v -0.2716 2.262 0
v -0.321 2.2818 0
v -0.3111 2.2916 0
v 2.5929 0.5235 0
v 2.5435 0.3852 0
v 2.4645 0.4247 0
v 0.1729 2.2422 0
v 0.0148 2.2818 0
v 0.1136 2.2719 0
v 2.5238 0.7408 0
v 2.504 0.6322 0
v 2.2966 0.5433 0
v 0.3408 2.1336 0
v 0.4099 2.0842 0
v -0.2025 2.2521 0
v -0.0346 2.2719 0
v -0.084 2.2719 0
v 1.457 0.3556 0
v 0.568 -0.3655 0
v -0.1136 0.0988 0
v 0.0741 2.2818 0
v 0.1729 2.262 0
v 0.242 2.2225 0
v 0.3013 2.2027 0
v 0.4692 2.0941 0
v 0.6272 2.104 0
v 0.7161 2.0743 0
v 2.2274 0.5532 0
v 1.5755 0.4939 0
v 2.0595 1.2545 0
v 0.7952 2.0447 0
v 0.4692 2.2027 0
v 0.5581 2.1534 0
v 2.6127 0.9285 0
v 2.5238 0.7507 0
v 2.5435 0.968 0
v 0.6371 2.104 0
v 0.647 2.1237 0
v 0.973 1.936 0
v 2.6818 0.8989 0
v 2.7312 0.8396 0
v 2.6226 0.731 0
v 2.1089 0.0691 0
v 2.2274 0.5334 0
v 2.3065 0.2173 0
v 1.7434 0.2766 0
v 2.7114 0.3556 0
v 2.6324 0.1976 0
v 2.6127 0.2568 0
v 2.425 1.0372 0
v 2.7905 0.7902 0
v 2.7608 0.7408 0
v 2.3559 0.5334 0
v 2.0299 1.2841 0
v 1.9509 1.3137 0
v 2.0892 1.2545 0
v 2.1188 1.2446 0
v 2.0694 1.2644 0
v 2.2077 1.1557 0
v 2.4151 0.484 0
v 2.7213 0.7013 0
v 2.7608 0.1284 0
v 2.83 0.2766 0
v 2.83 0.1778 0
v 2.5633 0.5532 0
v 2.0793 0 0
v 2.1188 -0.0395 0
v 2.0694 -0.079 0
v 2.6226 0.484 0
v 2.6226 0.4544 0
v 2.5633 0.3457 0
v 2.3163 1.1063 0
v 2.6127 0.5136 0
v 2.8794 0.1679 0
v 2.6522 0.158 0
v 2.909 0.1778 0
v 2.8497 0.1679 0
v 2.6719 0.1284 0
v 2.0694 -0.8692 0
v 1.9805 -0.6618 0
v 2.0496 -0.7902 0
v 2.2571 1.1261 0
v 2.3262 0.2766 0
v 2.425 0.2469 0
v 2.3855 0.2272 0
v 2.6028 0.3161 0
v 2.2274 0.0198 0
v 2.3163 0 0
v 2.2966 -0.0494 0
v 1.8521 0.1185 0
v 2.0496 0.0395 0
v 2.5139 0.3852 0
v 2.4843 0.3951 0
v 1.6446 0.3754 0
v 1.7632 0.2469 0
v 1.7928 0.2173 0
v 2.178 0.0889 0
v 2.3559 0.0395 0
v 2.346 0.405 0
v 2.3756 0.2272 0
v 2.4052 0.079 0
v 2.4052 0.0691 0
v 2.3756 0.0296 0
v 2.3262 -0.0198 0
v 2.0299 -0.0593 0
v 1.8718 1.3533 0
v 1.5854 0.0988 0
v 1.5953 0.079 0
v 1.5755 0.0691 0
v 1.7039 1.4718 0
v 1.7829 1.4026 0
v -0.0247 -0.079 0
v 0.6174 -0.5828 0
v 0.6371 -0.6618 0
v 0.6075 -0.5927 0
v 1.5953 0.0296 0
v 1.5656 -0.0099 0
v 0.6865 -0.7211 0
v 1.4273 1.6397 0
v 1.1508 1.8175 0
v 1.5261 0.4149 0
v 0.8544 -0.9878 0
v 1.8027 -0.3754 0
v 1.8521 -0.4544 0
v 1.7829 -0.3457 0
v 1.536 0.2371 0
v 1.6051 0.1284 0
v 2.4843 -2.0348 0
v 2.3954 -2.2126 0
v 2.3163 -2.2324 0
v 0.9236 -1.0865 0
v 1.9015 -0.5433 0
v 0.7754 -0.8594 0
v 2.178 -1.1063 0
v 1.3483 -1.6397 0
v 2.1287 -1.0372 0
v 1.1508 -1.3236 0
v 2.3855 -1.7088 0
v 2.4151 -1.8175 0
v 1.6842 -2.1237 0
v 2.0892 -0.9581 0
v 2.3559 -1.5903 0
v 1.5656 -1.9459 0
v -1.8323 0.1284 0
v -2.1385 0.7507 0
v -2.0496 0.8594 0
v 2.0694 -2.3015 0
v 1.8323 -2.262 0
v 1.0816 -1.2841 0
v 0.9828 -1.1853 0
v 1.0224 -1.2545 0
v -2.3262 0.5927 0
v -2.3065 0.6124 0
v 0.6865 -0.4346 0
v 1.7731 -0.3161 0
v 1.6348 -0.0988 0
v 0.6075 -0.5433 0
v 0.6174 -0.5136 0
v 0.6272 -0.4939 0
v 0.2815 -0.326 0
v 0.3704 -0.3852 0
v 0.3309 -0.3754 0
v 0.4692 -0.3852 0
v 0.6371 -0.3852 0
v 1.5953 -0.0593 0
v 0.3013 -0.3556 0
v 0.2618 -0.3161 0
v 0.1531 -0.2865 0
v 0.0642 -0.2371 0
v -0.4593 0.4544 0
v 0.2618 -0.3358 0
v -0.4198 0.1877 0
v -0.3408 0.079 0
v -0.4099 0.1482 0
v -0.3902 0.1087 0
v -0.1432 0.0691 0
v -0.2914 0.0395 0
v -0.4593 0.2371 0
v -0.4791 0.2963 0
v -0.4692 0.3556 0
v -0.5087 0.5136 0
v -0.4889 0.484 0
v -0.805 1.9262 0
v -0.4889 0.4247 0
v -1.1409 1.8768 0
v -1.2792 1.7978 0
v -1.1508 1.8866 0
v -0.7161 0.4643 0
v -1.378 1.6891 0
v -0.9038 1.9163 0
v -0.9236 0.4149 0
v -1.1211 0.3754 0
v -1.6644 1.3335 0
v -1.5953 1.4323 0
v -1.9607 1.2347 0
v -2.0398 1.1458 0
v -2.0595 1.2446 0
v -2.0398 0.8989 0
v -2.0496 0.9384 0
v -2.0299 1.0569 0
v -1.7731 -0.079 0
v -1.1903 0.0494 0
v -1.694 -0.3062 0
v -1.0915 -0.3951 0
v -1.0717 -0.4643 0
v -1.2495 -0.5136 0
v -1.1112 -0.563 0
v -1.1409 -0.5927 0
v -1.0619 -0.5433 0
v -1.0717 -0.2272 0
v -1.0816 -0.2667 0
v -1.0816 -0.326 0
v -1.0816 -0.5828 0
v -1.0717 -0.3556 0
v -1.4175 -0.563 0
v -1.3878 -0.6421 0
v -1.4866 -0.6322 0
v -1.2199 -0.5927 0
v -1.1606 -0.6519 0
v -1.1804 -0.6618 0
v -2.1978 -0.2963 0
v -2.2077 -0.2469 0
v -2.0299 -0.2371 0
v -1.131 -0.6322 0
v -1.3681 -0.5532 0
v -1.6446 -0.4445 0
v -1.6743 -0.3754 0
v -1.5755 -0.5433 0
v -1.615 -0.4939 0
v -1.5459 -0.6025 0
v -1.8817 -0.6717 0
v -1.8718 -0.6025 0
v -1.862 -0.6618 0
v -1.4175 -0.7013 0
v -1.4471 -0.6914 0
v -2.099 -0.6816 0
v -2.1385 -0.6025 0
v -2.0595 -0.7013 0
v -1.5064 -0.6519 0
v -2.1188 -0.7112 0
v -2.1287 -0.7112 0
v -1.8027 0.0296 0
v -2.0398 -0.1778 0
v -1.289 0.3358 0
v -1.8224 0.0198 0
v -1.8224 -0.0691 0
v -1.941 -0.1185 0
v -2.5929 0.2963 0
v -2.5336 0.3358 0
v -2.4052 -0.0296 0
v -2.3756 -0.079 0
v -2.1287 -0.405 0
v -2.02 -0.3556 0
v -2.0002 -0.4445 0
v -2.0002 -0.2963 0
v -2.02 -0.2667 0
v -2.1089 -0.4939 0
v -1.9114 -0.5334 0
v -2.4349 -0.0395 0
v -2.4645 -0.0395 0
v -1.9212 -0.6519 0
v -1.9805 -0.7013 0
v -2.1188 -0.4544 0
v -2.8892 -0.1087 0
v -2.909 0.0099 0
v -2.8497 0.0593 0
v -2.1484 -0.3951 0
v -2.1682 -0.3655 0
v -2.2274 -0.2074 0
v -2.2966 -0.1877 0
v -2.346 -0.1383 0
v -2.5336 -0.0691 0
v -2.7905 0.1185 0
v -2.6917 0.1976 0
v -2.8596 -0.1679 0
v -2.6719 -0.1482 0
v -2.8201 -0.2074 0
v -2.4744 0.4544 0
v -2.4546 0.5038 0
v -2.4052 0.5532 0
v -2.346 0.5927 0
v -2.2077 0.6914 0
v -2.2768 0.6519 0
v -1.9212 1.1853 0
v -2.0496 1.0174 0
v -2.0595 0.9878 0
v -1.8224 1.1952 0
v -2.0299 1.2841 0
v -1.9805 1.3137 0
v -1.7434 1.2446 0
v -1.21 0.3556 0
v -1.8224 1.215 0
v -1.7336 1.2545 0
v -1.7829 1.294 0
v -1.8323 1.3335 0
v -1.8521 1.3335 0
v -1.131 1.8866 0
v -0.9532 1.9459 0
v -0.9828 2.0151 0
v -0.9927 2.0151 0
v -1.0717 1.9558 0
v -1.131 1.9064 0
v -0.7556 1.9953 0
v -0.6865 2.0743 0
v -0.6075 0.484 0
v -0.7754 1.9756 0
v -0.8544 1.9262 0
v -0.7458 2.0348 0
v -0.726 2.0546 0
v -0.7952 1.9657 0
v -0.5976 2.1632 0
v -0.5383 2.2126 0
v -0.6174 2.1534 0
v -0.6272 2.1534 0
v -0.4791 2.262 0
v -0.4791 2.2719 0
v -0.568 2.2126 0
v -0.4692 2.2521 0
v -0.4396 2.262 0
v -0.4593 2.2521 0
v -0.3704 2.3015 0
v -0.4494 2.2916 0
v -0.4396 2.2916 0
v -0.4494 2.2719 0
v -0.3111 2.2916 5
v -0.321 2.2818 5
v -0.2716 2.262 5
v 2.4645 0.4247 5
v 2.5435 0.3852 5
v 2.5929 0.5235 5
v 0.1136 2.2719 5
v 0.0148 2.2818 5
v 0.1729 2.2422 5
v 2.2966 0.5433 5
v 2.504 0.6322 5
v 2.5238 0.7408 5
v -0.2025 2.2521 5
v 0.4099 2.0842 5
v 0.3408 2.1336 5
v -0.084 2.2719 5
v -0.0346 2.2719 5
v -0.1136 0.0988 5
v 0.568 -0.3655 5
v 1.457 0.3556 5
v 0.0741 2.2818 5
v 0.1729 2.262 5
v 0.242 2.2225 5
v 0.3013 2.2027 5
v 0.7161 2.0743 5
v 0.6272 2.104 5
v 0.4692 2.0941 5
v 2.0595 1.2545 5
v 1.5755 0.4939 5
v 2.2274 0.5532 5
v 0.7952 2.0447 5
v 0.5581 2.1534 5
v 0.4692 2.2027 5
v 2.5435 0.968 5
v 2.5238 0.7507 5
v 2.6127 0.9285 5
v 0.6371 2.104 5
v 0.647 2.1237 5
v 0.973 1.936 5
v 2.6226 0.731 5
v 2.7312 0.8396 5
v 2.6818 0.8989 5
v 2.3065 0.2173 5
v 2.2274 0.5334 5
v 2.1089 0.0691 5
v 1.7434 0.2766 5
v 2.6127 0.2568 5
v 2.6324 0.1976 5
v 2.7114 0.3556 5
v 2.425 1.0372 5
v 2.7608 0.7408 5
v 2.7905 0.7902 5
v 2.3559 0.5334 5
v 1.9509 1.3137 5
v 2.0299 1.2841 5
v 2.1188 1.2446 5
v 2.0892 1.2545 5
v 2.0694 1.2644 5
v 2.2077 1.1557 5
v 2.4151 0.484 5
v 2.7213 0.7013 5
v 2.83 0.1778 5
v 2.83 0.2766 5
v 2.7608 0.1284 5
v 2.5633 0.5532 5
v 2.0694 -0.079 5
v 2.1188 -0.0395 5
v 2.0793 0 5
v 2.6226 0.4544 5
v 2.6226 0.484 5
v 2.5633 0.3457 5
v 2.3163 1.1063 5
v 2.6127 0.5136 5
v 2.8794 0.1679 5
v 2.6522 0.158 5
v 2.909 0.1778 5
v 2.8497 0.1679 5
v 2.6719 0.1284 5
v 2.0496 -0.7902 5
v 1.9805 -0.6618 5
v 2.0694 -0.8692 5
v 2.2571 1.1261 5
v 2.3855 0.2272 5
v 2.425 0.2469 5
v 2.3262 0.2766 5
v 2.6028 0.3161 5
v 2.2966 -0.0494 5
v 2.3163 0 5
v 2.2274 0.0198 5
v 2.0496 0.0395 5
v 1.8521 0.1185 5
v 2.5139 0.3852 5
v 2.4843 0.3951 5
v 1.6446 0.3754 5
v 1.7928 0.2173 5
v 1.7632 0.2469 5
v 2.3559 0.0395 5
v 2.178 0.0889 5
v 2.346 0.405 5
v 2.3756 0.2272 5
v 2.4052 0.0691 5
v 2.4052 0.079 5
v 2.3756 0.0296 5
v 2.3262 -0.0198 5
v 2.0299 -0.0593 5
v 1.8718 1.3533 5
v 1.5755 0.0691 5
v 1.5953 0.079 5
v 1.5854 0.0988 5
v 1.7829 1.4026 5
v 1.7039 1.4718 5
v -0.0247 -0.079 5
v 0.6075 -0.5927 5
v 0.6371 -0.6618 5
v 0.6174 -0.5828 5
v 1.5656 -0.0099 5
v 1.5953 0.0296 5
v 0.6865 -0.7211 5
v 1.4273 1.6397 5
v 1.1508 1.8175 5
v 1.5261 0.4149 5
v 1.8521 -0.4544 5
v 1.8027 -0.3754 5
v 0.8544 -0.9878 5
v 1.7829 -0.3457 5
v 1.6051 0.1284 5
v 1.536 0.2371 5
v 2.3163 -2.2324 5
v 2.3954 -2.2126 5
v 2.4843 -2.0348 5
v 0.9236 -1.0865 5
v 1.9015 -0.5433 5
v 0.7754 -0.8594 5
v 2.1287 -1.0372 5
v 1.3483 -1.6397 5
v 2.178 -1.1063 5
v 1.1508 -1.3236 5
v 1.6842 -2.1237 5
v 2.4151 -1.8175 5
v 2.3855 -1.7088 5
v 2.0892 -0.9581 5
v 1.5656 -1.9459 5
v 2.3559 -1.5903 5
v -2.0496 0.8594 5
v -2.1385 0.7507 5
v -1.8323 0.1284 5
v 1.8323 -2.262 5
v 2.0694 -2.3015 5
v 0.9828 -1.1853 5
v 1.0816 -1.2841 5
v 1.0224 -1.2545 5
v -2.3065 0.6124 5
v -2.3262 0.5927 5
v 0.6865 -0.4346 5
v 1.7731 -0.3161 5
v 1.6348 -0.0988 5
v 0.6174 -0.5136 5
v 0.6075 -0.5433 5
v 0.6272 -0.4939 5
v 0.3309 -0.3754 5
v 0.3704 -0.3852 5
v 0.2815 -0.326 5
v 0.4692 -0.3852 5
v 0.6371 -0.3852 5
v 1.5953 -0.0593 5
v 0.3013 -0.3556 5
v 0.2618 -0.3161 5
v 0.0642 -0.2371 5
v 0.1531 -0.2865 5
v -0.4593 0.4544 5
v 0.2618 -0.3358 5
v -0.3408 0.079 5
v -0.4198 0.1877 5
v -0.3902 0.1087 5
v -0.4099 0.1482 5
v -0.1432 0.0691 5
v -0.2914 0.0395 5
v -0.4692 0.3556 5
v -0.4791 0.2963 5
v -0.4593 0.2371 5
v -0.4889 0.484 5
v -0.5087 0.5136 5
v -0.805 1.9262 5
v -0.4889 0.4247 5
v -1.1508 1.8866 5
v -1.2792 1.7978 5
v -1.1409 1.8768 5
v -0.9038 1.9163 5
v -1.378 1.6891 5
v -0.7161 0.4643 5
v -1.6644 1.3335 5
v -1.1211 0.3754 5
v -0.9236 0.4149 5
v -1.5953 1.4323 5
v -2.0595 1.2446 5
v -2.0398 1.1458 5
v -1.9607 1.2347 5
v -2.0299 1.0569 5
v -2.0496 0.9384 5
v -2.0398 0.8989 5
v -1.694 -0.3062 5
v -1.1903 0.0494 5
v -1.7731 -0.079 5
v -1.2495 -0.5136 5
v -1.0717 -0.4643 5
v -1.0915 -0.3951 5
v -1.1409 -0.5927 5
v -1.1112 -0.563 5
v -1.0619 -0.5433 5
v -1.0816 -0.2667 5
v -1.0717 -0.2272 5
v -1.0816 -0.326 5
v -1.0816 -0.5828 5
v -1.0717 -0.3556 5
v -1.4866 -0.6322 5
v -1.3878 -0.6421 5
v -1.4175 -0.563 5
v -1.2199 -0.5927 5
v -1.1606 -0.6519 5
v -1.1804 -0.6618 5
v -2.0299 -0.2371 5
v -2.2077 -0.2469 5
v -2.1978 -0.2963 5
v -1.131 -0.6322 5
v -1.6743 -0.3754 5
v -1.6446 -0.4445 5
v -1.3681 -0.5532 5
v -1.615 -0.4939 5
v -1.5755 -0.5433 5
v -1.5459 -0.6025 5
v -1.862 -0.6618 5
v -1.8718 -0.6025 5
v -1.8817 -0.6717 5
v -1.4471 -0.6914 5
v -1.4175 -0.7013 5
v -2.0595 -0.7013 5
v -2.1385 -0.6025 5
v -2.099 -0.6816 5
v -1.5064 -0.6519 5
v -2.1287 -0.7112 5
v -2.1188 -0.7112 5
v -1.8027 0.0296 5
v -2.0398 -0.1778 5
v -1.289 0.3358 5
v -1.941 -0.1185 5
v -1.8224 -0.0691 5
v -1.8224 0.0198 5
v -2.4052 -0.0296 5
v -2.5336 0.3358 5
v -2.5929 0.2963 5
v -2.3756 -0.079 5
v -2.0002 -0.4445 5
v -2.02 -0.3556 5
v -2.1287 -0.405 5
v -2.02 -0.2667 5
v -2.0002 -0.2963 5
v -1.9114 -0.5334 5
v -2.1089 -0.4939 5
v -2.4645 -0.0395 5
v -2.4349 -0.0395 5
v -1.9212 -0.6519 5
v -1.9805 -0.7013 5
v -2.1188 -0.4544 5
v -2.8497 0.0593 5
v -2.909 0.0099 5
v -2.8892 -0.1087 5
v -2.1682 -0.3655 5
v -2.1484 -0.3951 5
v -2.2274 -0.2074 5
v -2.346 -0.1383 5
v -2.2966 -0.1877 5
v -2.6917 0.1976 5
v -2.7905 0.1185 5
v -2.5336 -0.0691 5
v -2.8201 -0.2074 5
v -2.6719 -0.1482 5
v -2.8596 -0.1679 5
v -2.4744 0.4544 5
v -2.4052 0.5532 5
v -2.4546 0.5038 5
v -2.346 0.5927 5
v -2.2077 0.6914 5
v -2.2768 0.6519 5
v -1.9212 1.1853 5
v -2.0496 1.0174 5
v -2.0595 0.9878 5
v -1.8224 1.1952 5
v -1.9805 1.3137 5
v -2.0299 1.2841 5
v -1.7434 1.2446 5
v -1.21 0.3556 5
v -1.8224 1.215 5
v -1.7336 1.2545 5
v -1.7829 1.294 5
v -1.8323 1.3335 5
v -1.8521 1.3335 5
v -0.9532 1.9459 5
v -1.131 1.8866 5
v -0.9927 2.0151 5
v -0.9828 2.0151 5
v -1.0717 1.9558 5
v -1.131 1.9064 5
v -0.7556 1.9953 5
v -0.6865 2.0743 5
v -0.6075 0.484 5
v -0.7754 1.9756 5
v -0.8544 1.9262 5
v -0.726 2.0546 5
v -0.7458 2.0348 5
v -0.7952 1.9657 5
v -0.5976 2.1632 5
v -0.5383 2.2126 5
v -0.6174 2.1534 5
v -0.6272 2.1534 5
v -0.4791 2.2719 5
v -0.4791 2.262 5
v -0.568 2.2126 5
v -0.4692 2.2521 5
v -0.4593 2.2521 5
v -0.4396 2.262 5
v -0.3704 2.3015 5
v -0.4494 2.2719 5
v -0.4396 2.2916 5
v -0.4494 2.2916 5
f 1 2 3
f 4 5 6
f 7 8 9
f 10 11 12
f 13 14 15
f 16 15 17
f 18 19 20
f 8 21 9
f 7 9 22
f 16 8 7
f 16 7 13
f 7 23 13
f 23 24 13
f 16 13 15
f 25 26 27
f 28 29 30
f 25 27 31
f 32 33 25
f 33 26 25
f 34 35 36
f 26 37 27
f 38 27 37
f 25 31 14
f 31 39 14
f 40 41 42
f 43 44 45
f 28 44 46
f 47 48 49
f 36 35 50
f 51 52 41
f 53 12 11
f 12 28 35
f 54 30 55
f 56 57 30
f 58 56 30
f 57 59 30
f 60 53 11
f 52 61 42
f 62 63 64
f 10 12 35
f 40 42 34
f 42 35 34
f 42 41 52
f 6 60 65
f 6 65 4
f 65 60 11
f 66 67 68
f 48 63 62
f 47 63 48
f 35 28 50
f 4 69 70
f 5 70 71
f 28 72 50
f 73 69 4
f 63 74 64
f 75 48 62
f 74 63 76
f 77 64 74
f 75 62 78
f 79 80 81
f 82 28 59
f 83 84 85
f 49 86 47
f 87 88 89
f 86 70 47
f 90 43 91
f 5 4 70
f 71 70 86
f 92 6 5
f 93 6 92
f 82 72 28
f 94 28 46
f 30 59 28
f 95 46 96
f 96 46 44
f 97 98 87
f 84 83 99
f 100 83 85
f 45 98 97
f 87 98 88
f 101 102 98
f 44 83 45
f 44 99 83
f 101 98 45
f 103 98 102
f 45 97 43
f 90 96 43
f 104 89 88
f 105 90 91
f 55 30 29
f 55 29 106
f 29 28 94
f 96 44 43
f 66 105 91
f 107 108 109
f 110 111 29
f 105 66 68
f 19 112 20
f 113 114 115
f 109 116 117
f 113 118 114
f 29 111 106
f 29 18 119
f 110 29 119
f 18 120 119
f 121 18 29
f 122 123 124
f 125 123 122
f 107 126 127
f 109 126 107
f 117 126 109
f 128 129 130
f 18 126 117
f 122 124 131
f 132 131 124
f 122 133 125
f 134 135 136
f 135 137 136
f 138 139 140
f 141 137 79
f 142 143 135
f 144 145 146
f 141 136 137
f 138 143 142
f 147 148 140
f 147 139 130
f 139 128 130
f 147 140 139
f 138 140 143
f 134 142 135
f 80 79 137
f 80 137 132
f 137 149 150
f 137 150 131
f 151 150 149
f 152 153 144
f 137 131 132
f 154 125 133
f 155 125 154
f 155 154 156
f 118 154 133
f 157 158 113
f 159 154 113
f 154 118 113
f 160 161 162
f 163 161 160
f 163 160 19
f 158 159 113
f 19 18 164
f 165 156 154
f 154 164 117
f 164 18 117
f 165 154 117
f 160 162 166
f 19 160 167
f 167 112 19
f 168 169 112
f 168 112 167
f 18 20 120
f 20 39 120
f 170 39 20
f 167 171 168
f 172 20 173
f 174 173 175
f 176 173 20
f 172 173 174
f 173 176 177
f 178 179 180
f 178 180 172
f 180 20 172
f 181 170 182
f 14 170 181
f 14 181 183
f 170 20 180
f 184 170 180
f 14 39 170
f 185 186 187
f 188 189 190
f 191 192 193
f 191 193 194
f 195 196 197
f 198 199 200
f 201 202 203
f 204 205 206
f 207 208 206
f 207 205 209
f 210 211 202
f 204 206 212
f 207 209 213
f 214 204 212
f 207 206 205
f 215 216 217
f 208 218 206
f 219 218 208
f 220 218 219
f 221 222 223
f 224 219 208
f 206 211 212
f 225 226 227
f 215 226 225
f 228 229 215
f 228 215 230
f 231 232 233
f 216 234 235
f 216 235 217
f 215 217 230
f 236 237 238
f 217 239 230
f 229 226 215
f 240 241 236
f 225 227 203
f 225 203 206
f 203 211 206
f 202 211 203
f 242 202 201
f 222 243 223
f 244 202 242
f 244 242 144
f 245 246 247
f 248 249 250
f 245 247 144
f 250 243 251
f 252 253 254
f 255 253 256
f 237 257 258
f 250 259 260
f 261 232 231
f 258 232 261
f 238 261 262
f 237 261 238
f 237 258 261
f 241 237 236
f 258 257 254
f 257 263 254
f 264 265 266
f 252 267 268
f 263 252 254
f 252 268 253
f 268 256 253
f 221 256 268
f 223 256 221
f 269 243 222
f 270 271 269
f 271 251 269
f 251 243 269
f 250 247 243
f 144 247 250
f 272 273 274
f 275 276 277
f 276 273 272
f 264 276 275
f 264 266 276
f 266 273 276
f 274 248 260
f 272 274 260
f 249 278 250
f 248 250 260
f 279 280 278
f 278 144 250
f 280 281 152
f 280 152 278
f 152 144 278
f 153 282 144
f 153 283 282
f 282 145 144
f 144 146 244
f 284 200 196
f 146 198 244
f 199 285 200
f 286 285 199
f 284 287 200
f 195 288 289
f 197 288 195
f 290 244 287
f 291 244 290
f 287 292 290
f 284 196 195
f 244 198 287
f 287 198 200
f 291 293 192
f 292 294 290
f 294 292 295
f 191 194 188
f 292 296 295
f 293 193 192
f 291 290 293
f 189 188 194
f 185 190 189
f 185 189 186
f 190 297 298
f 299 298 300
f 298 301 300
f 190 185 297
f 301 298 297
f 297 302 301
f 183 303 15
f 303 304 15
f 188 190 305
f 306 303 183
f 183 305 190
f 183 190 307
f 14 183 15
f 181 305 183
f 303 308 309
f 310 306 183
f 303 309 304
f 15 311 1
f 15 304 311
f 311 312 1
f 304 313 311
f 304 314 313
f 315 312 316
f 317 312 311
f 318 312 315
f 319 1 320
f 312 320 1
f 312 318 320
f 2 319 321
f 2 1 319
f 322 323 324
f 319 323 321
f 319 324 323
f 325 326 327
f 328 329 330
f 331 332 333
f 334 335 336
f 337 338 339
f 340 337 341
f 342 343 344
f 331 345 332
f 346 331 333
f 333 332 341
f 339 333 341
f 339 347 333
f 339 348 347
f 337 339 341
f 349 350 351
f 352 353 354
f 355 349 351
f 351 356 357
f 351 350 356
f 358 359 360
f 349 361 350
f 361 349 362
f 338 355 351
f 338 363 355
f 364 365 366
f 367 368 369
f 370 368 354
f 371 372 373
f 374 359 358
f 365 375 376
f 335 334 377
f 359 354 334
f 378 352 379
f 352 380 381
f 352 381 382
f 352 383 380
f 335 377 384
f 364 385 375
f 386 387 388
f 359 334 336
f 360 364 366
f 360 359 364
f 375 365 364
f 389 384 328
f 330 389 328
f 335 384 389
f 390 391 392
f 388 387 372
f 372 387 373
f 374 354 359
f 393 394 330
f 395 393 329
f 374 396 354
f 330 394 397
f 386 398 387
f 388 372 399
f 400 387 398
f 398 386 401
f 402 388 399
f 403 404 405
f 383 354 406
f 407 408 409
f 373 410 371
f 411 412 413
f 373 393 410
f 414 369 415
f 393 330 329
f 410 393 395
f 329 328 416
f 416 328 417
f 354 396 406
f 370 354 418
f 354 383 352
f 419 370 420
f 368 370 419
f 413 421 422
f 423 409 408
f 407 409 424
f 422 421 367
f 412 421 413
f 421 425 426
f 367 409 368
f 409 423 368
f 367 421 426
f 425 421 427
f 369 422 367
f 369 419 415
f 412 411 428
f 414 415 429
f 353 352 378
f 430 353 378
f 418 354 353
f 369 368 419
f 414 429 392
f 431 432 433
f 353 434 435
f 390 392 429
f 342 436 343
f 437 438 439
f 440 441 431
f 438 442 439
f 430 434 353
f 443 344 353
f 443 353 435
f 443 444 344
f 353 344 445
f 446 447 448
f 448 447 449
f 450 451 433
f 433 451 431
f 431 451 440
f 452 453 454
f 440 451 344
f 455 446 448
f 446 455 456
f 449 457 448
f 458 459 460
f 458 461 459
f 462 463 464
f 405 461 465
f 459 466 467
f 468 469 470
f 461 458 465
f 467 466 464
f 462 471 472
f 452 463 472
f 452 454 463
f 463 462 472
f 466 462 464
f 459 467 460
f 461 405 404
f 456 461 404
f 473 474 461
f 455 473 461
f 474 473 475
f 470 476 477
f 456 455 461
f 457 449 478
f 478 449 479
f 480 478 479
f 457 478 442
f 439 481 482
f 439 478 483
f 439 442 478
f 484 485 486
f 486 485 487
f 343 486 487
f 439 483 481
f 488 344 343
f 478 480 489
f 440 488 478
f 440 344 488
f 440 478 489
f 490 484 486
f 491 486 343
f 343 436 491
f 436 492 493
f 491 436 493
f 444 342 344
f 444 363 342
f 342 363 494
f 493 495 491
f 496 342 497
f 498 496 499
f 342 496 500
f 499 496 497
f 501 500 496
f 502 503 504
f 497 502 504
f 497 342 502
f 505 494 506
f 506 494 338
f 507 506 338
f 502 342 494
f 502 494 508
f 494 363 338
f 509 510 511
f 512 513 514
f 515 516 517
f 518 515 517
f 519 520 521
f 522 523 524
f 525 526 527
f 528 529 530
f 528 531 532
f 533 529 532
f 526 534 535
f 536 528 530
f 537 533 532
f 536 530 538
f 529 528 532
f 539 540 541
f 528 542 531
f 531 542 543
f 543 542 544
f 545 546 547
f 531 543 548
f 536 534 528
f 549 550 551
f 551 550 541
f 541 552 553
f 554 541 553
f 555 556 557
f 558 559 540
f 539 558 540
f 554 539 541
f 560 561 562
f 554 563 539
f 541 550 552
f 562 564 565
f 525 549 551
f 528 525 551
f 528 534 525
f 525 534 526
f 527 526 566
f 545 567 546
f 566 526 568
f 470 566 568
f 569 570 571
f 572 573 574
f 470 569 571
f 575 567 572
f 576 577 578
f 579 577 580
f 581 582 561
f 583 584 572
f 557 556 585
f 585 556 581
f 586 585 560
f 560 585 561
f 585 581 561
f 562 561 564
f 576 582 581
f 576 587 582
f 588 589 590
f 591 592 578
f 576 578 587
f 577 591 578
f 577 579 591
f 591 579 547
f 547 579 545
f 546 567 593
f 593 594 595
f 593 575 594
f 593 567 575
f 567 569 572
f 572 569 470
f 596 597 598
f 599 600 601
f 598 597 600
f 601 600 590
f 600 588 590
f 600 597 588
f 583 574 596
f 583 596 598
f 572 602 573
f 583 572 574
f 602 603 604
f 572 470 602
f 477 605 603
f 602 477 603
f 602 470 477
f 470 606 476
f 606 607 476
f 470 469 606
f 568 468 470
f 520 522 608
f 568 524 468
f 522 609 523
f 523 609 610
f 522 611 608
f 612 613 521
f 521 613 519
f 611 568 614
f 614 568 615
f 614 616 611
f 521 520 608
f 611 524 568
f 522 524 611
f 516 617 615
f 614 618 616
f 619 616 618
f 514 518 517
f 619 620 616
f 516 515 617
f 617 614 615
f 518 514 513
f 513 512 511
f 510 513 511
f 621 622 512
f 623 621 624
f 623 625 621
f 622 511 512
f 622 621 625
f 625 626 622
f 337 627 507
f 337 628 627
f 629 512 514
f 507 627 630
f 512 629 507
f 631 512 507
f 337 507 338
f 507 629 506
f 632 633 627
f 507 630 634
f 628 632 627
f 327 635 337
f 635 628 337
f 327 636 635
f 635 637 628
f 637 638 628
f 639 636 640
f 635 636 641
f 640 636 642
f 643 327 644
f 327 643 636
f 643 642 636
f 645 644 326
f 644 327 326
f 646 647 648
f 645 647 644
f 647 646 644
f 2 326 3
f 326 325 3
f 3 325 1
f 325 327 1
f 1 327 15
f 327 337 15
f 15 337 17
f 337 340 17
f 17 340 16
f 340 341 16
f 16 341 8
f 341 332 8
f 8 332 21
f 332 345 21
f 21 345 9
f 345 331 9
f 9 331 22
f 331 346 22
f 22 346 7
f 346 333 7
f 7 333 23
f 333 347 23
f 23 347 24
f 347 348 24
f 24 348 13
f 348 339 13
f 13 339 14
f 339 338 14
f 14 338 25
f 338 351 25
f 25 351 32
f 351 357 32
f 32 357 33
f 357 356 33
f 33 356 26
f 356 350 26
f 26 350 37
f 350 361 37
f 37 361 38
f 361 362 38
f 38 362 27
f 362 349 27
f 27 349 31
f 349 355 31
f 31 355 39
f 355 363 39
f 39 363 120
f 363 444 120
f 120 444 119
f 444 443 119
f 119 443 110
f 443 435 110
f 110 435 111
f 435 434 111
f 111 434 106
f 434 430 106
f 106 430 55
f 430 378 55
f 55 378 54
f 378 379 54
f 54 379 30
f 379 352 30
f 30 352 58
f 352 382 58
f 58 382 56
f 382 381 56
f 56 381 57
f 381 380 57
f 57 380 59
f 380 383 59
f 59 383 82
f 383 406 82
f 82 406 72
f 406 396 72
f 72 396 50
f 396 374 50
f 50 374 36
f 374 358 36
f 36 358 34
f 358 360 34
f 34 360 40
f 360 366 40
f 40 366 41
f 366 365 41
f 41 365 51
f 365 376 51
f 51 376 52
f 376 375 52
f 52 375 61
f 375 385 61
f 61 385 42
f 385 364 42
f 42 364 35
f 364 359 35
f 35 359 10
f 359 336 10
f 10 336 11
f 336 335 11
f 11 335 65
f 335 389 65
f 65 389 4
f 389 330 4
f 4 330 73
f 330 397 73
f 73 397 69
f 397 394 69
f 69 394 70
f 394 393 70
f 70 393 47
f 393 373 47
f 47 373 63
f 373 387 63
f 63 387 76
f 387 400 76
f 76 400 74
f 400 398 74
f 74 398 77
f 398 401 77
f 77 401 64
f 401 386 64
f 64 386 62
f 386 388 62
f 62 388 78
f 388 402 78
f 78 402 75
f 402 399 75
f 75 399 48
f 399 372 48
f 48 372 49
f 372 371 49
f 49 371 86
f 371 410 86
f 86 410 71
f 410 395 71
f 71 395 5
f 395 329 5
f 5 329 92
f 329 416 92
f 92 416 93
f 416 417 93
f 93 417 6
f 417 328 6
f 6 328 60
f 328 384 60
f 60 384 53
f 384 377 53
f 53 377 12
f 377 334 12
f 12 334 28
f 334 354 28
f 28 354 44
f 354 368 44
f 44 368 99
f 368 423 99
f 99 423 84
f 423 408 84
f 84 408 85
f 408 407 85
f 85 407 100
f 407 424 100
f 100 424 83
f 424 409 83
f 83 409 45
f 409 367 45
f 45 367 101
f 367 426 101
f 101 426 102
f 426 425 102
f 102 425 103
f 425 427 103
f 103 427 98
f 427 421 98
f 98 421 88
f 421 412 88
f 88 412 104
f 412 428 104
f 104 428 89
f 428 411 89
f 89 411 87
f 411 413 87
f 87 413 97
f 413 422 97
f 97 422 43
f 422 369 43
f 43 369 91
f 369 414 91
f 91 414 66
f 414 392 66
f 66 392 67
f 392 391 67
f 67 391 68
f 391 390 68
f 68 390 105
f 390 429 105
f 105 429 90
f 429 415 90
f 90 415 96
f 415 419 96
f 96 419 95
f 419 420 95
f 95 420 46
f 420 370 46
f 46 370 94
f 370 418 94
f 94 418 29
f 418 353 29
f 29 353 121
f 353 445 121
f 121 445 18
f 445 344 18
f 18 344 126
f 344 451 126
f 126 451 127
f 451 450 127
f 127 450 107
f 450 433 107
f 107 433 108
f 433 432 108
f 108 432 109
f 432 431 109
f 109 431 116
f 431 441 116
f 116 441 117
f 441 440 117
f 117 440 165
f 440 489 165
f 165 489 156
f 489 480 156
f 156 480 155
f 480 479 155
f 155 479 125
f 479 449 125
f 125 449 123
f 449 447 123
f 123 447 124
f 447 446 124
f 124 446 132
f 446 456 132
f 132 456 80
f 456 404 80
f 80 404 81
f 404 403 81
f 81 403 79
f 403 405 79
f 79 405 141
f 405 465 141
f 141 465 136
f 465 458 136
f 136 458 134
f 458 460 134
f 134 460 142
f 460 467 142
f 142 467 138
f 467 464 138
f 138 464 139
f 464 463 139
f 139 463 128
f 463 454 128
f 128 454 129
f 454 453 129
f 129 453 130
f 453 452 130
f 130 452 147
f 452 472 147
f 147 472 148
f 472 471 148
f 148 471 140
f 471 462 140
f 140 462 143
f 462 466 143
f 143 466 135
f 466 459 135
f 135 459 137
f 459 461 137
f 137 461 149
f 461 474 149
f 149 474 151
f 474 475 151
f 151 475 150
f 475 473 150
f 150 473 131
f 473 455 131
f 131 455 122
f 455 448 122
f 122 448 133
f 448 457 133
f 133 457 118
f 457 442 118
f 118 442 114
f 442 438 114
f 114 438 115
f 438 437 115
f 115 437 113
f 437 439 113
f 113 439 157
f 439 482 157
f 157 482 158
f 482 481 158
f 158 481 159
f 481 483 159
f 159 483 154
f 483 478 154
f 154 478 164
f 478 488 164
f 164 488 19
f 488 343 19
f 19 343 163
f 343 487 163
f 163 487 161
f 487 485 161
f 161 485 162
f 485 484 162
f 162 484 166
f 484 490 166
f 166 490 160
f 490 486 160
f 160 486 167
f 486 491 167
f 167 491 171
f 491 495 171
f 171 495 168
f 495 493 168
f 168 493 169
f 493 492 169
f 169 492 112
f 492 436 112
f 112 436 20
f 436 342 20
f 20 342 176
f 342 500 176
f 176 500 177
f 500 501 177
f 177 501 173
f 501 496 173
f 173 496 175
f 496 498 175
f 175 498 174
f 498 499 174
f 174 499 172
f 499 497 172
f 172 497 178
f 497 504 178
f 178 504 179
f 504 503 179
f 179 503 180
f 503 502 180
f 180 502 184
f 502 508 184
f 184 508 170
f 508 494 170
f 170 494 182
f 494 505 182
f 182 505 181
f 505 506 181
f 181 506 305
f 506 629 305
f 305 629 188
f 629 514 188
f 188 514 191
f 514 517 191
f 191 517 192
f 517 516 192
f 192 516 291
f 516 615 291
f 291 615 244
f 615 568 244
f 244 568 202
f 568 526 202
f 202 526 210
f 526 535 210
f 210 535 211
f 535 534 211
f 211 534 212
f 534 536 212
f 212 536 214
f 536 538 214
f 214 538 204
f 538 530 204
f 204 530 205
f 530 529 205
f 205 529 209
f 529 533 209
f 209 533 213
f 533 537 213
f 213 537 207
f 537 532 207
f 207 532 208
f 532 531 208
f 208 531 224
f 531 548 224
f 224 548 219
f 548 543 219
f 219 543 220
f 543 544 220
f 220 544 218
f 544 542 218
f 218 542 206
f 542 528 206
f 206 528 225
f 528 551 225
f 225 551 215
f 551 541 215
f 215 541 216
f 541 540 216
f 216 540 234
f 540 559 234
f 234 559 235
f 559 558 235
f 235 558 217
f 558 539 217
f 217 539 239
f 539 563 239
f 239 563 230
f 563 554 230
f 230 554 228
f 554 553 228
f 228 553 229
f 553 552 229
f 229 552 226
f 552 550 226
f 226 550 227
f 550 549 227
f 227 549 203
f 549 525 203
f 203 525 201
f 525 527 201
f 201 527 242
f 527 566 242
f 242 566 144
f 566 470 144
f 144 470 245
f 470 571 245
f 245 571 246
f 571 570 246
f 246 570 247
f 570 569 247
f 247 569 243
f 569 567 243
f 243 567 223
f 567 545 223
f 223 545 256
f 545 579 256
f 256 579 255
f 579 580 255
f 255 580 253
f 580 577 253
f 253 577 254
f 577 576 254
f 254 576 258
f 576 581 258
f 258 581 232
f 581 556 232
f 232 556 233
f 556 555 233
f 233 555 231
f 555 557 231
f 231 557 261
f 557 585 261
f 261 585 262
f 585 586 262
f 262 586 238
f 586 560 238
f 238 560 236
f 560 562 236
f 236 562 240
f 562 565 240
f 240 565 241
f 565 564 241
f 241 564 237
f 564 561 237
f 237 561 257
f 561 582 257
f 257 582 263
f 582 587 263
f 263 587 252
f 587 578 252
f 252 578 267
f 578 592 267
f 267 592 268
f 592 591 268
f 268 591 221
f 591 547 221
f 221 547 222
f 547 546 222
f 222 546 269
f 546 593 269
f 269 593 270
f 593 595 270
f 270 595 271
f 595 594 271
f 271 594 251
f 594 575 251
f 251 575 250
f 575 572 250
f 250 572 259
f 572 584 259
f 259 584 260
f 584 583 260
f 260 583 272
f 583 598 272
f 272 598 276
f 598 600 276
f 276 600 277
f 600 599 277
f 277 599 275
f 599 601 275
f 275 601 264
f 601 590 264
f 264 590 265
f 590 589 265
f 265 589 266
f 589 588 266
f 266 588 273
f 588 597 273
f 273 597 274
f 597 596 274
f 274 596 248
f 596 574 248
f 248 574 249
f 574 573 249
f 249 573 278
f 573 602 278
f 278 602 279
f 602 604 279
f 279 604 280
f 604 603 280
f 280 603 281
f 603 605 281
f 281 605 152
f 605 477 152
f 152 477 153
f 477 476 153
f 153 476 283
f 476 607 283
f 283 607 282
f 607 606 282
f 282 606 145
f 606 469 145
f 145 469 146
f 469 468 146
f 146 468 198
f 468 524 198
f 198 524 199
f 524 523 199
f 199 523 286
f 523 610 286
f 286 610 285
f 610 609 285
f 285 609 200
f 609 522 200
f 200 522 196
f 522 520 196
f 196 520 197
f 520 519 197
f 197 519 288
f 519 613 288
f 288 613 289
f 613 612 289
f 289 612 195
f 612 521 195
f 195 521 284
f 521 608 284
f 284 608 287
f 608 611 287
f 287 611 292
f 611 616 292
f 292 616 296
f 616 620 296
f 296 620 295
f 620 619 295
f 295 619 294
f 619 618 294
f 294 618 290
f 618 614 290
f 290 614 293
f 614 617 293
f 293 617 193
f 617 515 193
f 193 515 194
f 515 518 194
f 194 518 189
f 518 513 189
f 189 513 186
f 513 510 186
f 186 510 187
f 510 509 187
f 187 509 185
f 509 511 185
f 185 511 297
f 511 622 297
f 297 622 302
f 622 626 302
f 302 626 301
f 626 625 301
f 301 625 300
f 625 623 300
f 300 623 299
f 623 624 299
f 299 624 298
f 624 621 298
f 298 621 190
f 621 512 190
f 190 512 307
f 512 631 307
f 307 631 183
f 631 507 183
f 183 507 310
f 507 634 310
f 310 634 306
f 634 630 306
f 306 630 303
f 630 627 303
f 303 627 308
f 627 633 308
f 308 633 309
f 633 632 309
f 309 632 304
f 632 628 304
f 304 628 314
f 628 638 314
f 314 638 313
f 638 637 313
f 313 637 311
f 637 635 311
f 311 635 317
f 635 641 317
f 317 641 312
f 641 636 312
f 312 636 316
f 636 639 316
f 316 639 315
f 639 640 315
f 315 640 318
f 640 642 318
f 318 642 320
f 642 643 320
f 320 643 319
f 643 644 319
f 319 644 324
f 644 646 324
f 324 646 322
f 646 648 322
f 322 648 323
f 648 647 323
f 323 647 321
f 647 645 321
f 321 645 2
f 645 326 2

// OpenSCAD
// Module names are of the form poly_<inkscape-path-id>().  As a result,
// you can associate a polygon in this OpenSCAD program with the corresponding
// SVG element in the Inkscape document by looking for the XML element with
// the attribute id="inkscape-path-id".

// fudge value is used to ensure that subtracted solids are a tad taller
// in the z dimension than the polygon being subtracted from.  This helps
// keep the resulting .stl file manifold.
fudge = 0.1;

module poly_path4334(h)
{
  scale([25.4/90, -25.4/90, 1]) union()
  {
    linear_extrude(height=h)
      polygon([[0.612500,-8.015000],[0.612500,-7.945000],[0.857500,-7.875000],[1.067500,-7.805000],[1.207500,-7.560000],[1.452500,-7.385000],[1.662500,-7.420000],[1.662500,-7.805000],[1.977500,-7.630000],[2.222500,-7.455000],[2.257500,-7.455000],[2.292500,-7.525000],[2.537500,-7.350000],[2.817500,-7.245000],[3.447500,-6.860000],[4.077500,-6.440000],[5.057500,-5.810000],[6.037500,-5.215000],[6.317500,-4.970000],[6.632500,-4.795000],[6.912500,-4.655000],[7.192500,-4.550000],[7.297500,-4.445000],[7.332500,-4.480000],[7.402500,-4.445000],[7.507500,-4.410000],[7.682500,-4.235000],[7.822500,-4.095000],[7.997500,-3.990000],[8.207500,-3.920000],[8.592500,-3.675000],[9.012500,-3.430000],[9.257500,-3.290000],[9.502500,-3.185000],[9.677500,-2.975000],[9.887500,-2.800000],[9.782500,-2.625000],[9.642500,-2.485000],[9.292500,-2.590000],[8.942500,-2.660000],[8.942500,-2.625000],[8.872500,-2.240000],[8.977500,-2.100000],[9.082500,-1.960000],[9.187500,-1.855000],[9.257500,-1.820000],[9.292500,-1.715000],[9.292500,-1.610000],[9.607500,-1.260000],[10.027500,-0.980000],[10.307500,-0.630000],[10.202500,-0.595000],[10.097500,-0.595000],[10.027500,-0.630000],[9.782500,-0.455000],[9.467500,-0.455000],[9.397500,-0.560000],[9.327500,-0.700000],[9.257500,-0.910000],[9.222500,-1.120000],[9.082500,-1.225000],[9.012500,-1.365000],[8.907500,-1.365000],[8.802500,-1.400000],[8.732500,-1.505000],[8.557500,-1.715000],[8.347500,-1.890000],[8.137500,-1.925000],[7.892500,-1.960000],[7.892500,-1.890000],[8.312500,-1.435000],[8.592500,-0.875000],[8.452500,-0.805000],[8.417500,-0.805000],[8.312500,-0.910000],[8.242500,-0.980000],[8.172500,-0.770000],[8.347500,-0.525000],[8.522500,-0.280000],[8.522500,-0.245000],[8.417500,-0.105000],[8.347500,-0.140000],[8.277500,-0.070000],[8.207500,-0.000000],[8.242500,0.070000],[8.137500,0.175000],[8.102500,0.140000],[7.892500,-0.070000],[7.717500,-0.315000],[7.472500,-0.245000],[7.262500,-0.140000],[7.367500,-0.000000],[7.507500,0.140000],[7.332500,0.280000],[7.192500,0.210000],[7.087500,0.105000],[6.562500,-0.420000],[6.457500,-0.595000],[6.352500,-0.770000],[6.247500,-0.875000],[6.177500,-0.980000],[5.827500,-1.330000],[5.582500,-1.750000],[5.407500,-1.470000],[5.162500,-1.260000],[5.442500,-0.840000],[5.687500,-0.455000],[5.617500,-0.350000],[5.652500,-0.280000],[5.582500,-0.245000],[5.617500,-0.175000],[5.652500,-0.105000],[5.547500,0.035000],[5.652500,0.210000],[5.792500,0.350000],[6.037500,0.735000],[6.282500,1.120000],[6.317500,1.225000],[6.387500,1.330000],[6.562500,1.610000],[6.737500,1.925000],[7.017500,2.345000],[7.262500,2.800000],[7.332500,3.080000],[7.402500,3.395000],[7.542500,3.675000],[7.717500,3.920000],[8.347500,5.635000],[8.452500,6.055000],[8.557500,6.440000],[8.802500,7.210000],[8.487500,7.840000],[8.347500,7.875000],[8.207500,7.910000],[7.332500,8.155000],[6.492500,8.015000],[5.967500,7.525000],[5.547500,6.895000],[4.777500,5.810000],[4.077500,4.690000],[3.832500,4.550000],[3.622500,4.445000],[3.482500,4.200000],[3.272500,3.850000],[3.027500,3.500000],[2.747500,3.045000],[2.432500,2.555000],[2.257500,2.345000],[2.152500,2.100000],[2.187500,2.065000],[2.152500,1.925000],[2.187500,1.820000],[2.222500,1.750000],[2.327500,1.645000],[2.432500,1.540000],[2.257500,1.365000],[2.012500,1.295000],[1.662500,1.365000],[1.312500,1.365000],[1.172500,1.330000],[1.067500,1.260000],[0.997500,1.155000],[0.927500,1.120000],[0.927500,1.190000],[0.542500,1.015000],[0.227500,0.840000],[-0.087500,0.280000],[-0.402500,-0.350000],[-0.507500,-0.245000],[-1.032500,-0.140000],[-1.207500,-0.280000],[-1.382500,-0.385000],[-1.452500,-0.525000],[-1.487500,-0.665000],[-1.627500,-0.840000],[-1.697500,-1.050000],[-1.662500,-1.260000],[-1.732500,-1.505000],[-1.627500,-1.610000],[-1.732500,-1.715000],[-1.802500,-1.820000],[-2.152500,-1.715000],[-2.537500,-1.645000],[-3.272500,-1.470000],[-3.972500,-1.330000],[-4.287500,-1.260000],[-4.567500,-1.190000],[-4.217500,-0.175000],[-3.797500,0.805000],[-3.832500,0.945000],[-3.832500,1.050000],[-3.832500,1.155000],[-3.797500,1.260000],[-3.867500,1.400000],[-3.797500,1.645000],[-3.762500,1.925000],[-3.832500,2.065000],[-3.937500,1.995000],[-4.042500,2.100000],[-4.007500,2.240000],[-4.112500,2.310000],[-4.182500,2.345000],[-4.322500,2.100000],[-4.427500,1.820000],[-4.637500,1.890000],[-4.847500,1.960000],[-5.022500,1.995000],[-4.917500,2.275000],[-5.022500,2.485000],[-5.127500,2.450000],[-5.267500,2.240000],[-5.337500,2.310000],[-5.477500,2.135000],[-5.582500,1.925000],[-5.722500,1.750000],[-5.827500,1.575000],[-5.932500,1.330000],[-6.002500,1.085000],[-6.282500,0.280000],[-6.387500,-0.105000],[-6.492500,-0.455000],[-6.457500,-0.070000],[-6.457500,0.245000],[-6.877500,0.420000],[-7.227500,0.630000],[-7.192500,0.840000],[-7.157500,0.945000],[-7.087500,1.050000],[-7.157500,1.260000],[-7.087500,1.575000],[-6.772500,1.890000],[-6.632500,2.135000],[-6.597500,2.345000],[-6.667500,2.380000],[-6.807500,2.310000],[-7.017500,2.485000],[-7.297500,2.485000],[-7.437500,2.415000],[-7.507500,2.520000],[-7.542500,2.520000],[-7.577500,2.135000],[-7.472500,1.750000],[-7.507500,1.610000],[-7.542500,1.435000],[-7.612500,1.400000],[-7.682500,1.295000],[-7.787500,1.050000],[-7.822500,0.875000],[-7.892500,0.735000],[-8.137500,0.665000],[-8.312500,0.490000],[-8.417500,0.280000],[-8.522500,0.105000],[-8.627500,0.140000],[-8.732500,0.140000],[-8.977500,0.245000],[-9.467500,0.525000],[-9.992500,0.735000],[-10.132500,0.595000],[-10.237500,0.385000],[-10.307500,-0.035000],[-10.097500,-0.210000],[-9.887500,-0.420000],[-9.537500,-0.700000],[-9.187500,-1.050000],[-8.977500,-1.190000],[-8.837500,-1.470000],[-8.767500,-1.610000],[-8.697500,-1.785000],[-8.522500,-1.960000],[-8.312500,-2.100000],[-8.242500,-2.100000],[-8.172500,-2.170000],[-8.067500,-2.310000],[-7.822500,-2.450000],[-7.577500,-2.660000],[-7.262500,-3.045000],[-7.227500,-3.185000],[-7.262500,-3.325000],[-7.297500,-3.500000],[-7.262500,-3.605000],[-7.192500,-3.745000],[-7.227500,-4.060000],[-7.297500,-4.410000],[-7.192500,-4.550000],[-7.017500,-4.655000],[-6.947500,-4.375000],[-6.807500,-4.200000],[-6.457500,-4.235000],[-6.457500,-4.305000],[-6.562500,-4.725000],[-6.492500,-4.725000],[-6.317500,-4.585000],[-6.177500,-4.410000],[-6.142500,-4.445000],[-5.897500,-4.725000],[-5.652500,-5.075000],[-5.267500,-5.530000],[-4.882500,-5.985000],[-4.532500,-6.370000],[-4.077500,-6.685000],[-4.042500,-6.650000],[-4.007500,-6.685000],[-4.007500,-6.755000],[-3.797500,-6.930000],[-3.517500,-7.140000],[-3.482500,-7.140000],[-3.377500,-6.895000],[-3.202500,-6.790000],[-3.027500,-6.825000],[-2.852500,-6.825000],[-2.817500,-6.965000],[-2.747500,-7.000000],[-2.677500,-7.070000],[-2.642500,-7.210000],[-2.572500,-7.280000],[-2.432500,-7.350000],[-2.327500,-7.490000],[-2.222500,-7.630000],[-2.187500,-7.630000],[-2.117500,-7.665000],[-2.012500,-7.840000],[-1.907500,-7.840000],[-1.802500,-7.945000],[-1.697500,-8.050000],[-1.697500,-8.015000],[-1.662500,-7.980000],[-1.627500,-7.980000],[-1.557500,-8.015000],[-1.592500,-8.050000],[-1.592500,-8.120000],[-1.557500,-8.120000],[-1.312500,-8.155000],[-1.137500,-8.085000],[-1.102500,-8.120000],[-0.962500,-8.015000],[-0.717500,-7.980000],[-0.507500,-8.015000],[-0.297500,-8.050000],[-0.122500,-8.050000],[0.052500,-8.085000],[0.262500,-8.085000],[0.402500,-8.050000],[0.612500,-8.015000]]);
  }
}

poly_path4334(5);
